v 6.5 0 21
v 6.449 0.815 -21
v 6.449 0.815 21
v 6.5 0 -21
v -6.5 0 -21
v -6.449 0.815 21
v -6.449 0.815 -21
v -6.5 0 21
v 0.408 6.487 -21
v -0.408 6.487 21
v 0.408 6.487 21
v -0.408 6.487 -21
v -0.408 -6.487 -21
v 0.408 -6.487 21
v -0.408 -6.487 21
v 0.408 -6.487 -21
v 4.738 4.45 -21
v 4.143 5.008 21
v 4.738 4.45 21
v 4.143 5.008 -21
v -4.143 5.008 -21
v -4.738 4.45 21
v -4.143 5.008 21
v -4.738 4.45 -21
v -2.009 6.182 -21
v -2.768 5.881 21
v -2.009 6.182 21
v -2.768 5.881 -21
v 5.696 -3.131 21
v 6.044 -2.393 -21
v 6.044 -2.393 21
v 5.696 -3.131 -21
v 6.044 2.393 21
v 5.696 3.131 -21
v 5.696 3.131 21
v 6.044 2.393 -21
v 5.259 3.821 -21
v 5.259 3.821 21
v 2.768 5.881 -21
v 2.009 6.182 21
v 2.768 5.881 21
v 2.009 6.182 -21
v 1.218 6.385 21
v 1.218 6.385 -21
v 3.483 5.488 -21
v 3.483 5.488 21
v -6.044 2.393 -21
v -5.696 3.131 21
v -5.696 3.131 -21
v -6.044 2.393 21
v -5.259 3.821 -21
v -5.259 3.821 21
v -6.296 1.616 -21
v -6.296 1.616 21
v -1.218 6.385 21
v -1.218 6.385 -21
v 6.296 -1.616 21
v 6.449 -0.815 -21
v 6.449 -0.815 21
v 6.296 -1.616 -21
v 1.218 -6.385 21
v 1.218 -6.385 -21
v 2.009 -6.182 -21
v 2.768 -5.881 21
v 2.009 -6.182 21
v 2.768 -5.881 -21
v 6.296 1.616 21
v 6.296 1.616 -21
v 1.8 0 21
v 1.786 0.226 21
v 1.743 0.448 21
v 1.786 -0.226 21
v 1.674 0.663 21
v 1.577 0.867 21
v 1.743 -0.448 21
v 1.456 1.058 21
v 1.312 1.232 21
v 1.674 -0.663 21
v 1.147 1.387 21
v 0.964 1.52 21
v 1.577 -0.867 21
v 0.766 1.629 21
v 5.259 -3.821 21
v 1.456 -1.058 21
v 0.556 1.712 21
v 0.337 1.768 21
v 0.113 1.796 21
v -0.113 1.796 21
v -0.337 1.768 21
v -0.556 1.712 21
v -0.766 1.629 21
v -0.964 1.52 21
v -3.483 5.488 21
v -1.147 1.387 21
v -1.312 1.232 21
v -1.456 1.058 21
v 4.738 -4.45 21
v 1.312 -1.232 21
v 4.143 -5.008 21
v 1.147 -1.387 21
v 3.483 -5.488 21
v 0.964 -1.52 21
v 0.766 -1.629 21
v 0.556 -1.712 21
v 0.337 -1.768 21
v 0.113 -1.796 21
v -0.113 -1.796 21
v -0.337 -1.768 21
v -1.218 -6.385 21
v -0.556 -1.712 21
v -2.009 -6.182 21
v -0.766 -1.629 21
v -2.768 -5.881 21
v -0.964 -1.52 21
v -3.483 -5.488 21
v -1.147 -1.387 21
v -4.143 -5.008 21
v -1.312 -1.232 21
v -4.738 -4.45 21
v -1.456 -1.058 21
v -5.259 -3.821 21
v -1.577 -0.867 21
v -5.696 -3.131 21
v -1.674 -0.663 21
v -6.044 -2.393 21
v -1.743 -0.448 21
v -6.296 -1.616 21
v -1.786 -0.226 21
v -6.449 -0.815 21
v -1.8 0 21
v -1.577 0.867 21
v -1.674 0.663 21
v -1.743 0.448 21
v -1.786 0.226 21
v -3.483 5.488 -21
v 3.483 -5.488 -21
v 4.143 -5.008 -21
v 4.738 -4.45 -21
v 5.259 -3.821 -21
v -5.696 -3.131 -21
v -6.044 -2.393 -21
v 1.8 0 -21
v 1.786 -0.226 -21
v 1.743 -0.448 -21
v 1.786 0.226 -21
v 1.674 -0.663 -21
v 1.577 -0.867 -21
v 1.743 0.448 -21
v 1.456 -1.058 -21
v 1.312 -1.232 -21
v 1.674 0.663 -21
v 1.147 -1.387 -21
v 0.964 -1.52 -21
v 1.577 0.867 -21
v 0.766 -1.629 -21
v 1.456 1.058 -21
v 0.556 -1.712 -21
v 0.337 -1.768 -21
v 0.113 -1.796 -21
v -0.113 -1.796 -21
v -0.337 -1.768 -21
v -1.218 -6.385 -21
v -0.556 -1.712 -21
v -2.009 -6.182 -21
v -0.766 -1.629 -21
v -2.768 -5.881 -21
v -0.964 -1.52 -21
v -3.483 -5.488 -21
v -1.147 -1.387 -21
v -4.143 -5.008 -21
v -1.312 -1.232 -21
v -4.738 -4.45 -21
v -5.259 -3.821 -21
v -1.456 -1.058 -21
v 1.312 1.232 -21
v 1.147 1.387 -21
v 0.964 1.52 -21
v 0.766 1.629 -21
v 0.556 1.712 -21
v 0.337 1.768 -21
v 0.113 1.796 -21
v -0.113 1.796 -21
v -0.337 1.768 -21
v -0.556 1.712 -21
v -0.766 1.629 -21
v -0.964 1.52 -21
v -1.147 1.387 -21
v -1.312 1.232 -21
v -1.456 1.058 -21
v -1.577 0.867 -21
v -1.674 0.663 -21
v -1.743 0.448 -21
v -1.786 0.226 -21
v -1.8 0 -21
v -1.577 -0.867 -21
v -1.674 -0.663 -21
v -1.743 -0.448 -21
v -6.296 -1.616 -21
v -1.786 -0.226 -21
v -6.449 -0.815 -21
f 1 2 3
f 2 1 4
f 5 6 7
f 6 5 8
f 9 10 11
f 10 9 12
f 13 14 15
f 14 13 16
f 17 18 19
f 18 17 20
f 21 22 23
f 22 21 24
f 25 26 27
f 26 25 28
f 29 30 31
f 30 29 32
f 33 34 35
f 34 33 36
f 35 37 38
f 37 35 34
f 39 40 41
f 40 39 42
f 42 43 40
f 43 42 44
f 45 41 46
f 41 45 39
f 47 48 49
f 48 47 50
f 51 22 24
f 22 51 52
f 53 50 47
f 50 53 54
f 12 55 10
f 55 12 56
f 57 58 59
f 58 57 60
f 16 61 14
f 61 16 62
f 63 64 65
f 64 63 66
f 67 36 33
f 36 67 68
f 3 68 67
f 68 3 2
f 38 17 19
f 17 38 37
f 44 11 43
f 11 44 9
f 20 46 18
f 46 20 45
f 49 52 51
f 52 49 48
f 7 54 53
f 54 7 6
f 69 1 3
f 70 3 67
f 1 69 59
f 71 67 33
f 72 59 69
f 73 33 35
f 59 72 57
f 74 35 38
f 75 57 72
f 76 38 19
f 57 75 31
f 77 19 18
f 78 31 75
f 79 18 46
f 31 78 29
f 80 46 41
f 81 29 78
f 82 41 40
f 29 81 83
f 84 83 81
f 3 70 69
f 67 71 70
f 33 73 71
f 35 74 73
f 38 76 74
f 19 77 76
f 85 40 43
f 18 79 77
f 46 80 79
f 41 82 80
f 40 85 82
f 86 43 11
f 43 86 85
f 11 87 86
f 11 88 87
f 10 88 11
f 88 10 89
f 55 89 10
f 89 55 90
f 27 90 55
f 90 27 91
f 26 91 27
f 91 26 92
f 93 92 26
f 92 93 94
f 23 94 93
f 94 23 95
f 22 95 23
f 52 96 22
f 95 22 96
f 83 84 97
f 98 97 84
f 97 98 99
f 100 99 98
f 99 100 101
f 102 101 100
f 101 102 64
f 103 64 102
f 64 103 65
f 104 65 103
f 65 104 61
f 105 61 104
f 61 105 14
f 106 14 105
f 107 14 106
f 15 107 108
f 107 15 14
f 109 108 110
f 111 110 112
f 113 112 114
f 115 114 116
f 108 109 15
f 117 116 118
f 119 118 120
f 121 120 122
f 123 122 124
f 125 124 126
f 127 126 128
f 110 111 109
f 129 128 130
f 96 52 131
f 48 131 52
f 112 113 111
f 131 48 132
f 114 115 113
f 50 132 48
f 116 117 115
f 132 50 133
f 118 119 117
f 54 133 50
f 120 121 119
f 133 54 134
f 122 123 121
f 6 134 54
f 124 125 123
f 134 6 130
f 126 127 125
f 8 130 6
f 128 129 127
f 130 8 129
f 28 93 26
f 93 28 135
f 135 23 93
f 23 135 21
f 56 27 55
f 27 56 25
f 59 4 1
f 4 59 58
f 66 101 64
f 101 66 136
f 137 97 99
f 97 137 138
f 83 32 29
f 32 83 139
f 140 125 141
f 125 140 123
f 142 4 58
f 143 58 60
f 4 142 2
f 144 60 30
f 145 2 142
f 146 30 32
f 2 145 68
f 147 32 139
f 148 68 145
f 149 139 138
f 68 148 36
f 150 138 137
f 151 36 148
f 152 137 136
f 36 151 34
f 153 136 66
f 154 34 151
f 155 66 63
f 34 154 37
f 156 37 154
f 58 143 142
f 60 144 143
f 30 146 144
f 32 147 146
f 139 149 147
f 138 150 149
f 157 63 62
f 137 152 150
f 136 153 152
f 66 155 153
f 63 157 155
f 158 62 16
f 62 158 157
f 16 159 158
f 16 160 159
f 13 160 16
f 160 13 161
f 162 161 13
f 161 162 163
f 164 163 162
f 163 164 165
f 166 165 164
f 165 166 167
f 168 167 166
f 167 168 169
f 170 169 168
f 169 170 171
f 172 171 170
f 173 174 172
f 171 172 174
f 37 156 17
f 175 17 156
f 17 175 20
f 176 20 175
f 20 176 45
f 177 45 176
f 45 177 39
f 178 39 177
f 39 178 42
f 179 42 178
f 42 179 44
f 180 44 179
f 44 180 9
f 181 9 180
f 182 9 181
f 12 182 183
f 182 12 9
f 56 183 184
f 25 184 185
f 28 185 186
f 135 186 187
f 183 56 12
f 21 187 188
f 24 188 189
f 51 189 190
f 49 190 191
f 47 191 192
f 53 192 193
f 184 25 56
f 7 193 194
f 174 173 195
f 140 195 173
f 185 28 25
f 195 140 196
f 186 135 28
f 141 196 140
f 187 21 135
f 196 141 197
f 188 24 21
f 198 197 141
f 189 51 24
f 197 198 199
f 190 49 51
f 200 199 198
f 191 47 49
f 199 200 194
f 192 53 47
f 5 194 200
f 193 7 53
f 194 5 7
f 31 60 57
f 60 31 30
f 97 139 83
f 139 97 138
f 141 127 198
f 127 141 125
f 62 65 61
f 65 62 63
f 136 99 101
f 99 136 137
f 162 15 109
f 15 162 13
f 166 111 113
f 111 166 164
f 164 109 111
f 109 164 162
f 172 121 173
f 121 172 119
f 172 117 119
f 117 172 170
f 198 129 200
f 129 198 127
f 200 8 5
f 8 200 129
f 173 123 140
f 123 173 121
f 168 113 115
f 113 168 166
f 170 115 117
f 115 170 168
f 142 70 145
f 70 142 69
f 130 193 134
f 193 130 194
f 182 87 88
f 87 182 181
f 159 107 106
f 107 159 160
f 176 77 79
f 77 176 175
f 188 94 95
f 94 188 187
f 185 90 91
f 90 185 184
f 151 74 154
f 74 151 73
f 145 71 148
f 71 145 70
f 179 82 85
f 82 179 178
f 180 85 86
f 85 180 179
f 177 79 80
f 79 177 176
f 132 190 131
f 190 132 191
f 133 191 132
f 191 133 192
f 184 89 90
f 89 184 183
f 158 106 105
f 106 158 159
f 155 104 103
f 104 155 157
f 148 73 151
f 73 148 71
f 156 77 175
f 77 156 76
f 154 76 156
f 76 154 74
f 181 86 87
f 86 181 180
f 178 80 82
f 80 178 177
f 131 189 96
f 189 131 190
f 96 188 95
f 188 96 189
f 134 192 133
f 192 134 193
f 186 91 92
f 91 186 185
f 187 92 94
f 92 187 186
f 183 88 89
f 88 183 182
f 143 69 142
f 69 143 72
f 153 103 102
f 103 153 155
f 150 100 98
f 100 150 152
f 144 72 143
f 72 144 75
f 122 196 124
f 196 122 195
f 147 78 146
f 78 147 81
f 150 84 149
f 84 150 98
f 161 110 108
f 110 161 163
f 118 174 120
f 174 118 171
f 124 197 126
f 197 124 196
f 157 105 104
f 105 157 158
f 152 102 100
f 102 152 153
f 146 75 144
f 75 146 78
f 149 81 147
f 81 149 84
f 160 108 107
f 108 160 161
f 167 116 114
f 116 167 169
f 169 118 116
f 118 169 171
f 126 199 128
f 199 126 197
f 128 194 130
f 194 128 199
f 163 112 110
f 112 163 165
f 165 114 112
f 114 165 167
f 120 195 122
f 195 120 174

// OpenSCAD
$fn = 50;


difference() {
	union() {
		translate(v = [0, 0, -21.0000000000]) {
			cylinder(h = 42, r = 6.5000000000);
		}
	}
	union() {
		translate(v = [0, 0, -100.0000000000]) {
			cylinder(h = 200, r = 1.8000000000);
		}
	}
}
